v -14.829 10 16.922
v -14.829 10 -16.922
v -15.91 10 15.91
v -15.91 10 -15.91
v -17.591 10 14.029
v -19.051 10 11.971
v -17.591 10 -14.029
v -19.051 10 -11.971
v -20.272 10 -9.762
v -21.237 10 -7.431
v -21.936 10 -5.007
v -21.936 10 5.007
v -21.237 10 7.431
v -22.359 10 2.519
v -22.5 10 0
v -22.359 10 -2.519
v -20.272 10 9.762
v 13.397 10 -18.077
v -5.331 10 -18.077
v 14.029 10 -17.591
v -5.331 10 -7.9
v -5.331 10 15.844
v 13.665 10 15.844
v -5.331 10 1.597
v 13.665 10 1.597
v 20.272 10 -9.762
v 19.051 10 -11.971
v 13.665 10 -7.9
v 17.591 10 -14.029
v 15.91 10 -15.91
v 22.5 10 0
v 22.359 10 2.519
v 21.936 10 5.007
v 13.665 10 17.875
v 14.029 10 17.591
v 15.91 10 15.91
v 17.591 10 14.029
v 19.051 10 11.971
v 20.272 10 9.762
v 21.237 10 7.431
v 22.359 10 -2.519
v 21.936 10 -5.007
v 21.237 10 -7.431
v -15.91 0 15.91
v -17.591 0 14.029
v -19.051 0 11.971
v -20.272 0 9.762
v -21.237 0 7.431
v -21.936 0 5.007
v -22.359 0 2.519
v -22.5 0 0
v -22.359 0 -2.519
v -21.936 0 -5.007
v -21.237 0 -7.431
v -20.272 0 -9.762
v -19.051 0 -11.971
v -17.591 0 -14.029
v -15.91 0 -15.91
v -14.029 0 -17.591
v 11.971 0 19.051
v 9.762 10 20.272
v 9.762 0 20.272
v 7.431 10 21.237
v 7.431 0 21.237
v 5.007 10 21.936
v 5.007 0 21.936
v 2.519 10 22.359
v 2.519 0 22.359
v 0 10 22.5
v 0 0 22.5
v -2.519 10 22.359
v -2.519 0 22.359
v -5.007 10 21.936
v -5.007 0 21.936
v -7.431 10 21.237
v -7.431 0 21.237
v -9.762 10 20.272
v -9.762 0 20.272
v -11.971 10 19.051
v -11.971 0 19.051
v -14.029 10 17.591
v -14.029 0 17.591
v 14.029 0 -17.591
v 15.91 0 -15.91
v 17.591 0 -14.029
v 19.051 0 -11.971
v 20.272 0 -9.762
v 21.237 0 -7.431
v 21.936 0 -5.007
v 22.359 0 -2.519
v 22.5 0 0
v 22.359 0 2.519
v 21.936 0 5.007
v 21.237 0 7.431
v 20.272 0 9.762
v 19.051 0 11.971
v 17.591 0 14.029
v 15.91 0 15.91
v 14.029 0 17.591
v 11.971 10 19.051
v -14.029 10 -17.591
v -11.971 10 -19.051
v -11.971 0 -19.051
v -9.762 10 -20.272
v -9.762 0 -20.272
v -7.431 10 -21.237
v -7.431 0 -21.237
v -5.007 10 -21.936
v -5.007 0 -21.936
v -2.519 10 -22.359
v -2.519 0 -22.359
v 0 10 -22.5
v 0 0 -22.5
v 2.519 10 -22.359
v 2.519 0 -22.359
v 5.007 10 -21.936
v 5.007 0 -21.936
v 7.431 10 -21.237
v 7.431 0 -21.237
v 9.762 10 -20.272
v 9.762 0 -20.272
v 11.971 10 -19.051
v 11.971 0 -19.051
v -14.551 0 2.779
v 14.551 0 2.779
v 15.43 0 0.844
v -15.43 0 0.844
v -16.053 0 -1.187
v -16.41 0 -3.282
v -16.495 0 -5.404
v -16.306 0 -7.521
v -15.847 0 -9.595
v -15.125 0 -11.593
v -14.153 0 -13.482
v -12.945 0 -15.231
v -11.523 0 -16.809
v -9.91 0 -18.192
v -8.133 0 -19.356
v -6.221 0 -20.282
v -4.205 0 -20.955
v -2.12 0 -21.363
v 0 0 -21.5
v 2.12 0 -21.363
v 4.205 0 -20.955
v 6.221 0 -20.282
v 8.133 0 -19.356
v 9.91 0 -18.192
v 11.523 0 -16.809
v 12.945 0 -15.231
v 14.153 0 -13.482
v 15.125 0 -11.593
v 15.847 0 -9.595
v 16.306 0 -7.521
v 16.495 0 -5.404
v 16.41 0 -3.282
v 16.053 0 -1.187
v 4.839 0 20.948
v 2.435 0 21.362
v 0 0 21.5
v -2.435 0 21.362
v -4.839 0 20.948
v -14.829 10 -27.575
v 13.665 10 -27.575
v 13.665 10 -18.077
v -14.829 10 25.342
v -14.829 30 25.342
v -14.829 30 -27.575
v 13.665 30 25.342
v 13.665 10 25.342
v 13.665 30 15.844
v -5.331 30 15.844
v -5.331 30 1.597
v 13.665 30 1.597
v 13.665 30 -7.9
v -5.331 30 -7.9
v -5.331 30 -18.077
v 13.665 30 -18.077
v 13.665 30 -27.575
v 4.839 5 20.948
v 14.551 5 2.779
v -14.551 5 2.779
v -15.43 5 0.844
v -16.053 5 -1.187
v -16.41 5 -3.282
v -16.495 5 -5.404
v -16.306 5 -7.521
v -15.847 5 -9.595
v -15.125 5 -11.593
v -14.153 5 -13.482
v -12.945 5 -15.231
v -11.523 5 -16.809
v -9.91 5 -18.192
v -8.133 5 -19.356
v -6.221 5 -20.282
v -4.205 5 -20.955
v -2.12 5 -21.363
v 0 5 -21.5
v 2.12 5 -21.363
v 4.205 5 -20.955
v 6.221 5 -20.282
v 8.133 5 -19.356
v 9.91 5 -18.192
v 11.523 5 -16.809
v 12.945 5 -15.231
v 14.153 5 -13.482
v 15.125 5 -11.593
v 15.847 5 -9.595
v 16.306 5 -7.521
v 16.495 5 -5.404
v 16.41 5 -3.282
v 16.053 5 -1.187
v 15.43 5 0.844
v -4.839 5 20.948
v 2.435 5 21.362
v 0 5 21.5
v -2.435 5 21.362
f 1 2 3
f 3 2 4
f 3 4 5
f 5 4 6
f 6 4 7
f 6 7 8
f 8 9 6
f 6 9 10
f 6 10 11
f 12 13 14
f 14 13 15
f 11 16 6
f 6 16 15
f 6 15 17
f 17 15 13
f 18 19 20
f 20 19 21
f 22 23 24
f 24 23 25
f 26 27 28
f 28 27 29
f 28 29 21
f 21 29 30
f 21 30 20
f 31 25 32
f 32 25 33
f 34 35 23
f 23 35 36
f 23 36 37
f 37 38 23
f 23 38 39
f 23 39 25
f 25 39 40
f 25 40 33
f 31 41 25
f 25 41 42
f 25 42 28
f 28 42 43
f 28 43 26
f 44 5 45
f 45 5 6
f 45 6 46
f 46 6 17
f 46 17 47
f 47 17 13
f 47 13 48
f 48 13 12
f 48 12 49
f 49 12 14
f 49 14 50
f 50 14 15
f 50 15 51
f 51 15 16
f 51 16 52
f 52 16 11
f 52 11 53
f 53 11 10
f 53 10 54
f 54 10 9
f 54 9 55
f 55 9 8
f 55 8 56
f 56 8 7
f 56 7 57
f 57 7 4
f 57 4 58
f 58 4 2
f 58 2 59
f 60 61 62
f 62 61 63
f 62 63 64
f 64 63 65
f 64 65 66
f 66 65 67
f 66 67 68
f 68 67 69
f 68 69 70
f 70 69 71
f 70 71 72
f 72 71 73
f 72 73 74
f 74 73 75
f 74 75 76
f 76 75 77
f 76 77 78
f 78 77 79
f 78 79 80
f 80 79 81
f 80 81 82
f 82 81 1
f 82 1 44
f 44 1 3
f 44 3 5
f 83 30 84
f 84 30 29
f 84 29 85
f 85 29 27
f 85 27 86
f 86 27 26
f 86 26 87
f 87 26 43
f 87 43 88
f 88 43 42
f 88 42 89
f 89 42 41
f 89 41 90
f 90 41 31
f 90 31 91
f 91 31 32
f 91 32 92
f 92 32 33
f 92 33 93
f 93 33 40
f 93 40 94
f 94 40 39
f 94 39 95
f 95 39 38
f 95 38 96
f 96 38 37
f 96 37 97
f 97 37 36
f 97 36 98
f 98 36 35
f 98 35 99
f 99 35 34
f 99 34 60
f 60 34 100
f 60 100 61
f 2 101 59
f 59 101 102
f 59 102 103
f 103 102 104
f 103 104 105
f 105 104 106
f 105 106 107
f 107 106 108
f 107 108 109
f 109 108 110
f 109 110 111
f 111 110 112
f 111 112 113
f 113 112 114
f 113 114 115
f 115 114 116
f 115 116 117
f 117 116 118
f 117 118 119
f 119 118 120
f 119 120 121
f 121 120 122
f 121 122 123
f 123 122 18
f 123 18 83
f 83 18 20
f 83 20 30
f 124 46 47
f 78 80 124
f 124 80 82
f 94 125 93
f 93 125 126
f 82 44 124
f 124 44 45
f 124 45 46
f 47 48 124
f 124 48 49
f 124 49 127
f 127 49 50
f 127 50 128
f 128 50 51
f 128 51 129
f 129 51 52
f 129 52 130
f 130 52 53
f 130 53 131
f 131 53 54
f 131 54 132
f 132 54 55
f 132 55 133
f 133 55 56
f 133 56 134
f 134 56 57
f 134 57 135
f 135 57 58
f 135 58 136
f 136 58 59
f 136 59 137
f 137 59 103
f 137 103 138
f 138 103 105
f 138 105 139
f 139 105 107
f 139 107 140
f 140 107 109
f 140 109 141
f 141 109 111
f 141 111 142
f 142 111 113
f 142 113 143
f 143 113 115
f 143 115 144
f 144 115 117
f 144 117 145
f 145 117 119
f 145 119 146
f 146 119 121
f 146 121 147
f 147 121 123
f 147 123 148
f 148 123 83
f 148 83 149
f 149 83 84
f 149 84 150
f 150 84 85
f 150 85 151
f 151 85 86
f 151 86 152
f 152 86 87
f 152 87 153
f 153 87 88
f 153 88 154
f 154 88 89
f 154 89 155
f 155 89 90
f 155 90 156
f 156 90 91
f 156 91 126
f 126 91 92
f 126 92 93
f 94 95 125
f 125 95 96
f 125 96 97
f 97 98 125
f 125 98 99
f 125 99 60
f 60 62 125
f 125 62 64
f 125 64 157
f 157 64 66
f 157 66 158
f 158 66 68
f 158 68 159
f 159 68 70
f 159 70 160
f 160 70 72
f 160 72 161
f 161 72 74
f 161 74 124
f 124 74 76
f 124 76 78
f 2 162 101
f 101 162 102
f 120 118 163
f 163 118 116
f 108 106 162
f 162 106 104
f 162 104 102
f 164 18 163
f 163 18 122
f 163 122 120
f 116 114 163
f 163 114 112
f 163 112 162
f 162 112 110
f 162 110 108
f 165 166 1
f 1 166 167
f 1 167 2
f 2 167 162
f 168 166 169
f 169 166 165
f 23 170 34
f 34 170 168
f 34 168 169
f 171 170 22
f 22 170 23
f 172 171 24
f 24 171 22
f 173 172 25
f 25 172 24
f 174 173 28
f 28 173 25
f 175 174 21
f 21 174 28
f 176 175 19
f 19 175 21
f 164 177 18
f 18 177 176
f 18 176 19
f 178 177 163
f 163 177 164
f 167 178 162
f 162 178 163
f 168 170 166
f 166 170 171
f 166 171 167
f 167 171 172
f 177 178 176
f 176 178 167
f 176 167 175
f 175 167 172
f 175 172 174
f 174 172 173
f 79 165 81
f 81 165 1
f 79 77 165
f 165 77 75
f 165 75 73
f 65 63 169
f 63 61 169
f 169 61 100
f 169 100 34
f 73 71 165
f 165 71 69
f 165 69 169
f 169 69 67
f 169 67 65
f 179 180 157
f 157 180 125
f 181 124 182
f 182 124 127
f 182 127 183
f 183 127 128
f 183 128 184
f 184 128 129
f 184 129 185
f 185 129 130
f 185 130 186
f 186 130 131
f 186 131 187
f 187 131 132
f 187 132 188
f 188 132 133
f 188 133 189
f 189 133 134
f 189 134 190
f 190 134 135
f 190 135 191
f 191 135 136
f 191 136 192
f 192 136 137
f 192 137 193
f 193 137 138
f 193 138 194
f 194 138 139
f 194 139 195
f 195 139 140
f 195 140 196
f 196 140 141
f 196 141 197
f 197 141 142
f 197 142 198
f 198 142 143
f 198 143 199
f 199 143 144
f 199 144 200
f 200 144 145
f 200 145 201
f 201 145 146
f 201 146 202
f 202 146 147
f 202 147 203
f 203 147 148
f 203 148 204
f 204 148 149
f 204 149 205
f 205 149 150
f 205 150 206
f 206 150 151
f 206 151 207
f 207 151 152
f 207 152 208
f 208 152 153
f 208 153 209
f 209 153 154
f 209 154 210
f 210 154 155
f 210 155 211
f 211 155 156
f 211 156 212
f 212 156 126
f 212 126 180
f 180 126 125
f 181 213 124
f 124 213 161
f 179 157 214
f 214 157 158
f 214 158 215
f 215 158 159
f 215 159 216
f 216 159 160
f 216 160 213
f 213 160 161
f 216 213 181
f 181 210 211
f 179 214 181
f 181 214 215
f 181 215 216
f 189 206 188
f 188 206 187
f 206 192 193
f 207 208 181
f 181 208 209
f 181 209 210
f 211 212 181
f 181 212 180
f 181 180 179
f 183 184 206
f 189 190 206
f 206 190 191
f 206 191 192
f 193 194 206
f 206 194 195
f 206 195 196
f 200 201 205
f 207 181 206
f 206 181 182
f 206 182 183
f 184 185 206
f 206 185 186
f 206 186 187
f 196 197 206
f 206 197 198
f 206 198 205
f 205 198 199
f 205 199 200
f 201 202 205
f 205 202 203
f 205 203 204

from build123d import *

# Parameters (mm, degrees)
SKETCH1_R           = 22.5
BOSS_EXTRUDE1_DEPTH = 10
BOSS_EXTRUDE2_DEPTH = 20
SKETCH3_R           = 16.5
CUT_EXTRUDE2_DEPTH  = 5


with BuildPart() as part:
    # Sketch1 → Boss-Extrude1 (new body)
    with BuildSketch(Plane(origin=(0, 0, 0), x_dir=(1, 0, 0), z_dir=(0, 1, 0))):
        with Locations(Location((0, 0, 0), (0, 0, 270))):
            Circle(SKETCH1_R)
    extrude(amount=BOSS_EXTRUDE1_DEPTH)

    # Sketch2 → Boss-Extrude2 (add)
    with BuildSketch(Plane(origin=(0, 10, 0), x_dir=(1, 0, 0), z_dir=(0, 1, 0))):
        Polygon((-14.828901743, 27.574589589), (13.664688, 27.574589589), (13.664688, 18.076726341), (-5.331038496, 18.076726341), (-5.331038496, 7.90044429), (13.664688, 7.90044429), (13.664688, -1.597418958), (-5.331038496, -1.597418958), (-5.331038496, -15.84421383), (13.664688, -15.84421383), (13.664688, -25.342077078), (-14.828901743, -25.342077078), align=None)
    extrude(amount=BOSS_EXTRUDE2_DEPTH)

    # Sketch3 → Cut-Extrude2 (cut)
    with BuildSketch(Plane.XZ):
        with BuildLine():
            ThreePointArc((-14.551420086, 2.778571429), (0, 11.5), (14.551420086, 2.778571429))
            Line((14.551420086, 2.778571429), (4.83856504, 20.948467447))
            ThreePointArc((4.83856504, 20.948467447), (0, 21.5), (-4.83856504, 20.948467447))
            Line((-4.83856504, 20.948467447), (-14.551420086, 2.778571429))
        make_face()
        with Locations((0, -5)):
            Circle(SKETCH3_R)
    extrude(amount=-CUT_EXTRUDE2_DEPTH, mode=Mode.SUBTRACT)


solid = part.part
